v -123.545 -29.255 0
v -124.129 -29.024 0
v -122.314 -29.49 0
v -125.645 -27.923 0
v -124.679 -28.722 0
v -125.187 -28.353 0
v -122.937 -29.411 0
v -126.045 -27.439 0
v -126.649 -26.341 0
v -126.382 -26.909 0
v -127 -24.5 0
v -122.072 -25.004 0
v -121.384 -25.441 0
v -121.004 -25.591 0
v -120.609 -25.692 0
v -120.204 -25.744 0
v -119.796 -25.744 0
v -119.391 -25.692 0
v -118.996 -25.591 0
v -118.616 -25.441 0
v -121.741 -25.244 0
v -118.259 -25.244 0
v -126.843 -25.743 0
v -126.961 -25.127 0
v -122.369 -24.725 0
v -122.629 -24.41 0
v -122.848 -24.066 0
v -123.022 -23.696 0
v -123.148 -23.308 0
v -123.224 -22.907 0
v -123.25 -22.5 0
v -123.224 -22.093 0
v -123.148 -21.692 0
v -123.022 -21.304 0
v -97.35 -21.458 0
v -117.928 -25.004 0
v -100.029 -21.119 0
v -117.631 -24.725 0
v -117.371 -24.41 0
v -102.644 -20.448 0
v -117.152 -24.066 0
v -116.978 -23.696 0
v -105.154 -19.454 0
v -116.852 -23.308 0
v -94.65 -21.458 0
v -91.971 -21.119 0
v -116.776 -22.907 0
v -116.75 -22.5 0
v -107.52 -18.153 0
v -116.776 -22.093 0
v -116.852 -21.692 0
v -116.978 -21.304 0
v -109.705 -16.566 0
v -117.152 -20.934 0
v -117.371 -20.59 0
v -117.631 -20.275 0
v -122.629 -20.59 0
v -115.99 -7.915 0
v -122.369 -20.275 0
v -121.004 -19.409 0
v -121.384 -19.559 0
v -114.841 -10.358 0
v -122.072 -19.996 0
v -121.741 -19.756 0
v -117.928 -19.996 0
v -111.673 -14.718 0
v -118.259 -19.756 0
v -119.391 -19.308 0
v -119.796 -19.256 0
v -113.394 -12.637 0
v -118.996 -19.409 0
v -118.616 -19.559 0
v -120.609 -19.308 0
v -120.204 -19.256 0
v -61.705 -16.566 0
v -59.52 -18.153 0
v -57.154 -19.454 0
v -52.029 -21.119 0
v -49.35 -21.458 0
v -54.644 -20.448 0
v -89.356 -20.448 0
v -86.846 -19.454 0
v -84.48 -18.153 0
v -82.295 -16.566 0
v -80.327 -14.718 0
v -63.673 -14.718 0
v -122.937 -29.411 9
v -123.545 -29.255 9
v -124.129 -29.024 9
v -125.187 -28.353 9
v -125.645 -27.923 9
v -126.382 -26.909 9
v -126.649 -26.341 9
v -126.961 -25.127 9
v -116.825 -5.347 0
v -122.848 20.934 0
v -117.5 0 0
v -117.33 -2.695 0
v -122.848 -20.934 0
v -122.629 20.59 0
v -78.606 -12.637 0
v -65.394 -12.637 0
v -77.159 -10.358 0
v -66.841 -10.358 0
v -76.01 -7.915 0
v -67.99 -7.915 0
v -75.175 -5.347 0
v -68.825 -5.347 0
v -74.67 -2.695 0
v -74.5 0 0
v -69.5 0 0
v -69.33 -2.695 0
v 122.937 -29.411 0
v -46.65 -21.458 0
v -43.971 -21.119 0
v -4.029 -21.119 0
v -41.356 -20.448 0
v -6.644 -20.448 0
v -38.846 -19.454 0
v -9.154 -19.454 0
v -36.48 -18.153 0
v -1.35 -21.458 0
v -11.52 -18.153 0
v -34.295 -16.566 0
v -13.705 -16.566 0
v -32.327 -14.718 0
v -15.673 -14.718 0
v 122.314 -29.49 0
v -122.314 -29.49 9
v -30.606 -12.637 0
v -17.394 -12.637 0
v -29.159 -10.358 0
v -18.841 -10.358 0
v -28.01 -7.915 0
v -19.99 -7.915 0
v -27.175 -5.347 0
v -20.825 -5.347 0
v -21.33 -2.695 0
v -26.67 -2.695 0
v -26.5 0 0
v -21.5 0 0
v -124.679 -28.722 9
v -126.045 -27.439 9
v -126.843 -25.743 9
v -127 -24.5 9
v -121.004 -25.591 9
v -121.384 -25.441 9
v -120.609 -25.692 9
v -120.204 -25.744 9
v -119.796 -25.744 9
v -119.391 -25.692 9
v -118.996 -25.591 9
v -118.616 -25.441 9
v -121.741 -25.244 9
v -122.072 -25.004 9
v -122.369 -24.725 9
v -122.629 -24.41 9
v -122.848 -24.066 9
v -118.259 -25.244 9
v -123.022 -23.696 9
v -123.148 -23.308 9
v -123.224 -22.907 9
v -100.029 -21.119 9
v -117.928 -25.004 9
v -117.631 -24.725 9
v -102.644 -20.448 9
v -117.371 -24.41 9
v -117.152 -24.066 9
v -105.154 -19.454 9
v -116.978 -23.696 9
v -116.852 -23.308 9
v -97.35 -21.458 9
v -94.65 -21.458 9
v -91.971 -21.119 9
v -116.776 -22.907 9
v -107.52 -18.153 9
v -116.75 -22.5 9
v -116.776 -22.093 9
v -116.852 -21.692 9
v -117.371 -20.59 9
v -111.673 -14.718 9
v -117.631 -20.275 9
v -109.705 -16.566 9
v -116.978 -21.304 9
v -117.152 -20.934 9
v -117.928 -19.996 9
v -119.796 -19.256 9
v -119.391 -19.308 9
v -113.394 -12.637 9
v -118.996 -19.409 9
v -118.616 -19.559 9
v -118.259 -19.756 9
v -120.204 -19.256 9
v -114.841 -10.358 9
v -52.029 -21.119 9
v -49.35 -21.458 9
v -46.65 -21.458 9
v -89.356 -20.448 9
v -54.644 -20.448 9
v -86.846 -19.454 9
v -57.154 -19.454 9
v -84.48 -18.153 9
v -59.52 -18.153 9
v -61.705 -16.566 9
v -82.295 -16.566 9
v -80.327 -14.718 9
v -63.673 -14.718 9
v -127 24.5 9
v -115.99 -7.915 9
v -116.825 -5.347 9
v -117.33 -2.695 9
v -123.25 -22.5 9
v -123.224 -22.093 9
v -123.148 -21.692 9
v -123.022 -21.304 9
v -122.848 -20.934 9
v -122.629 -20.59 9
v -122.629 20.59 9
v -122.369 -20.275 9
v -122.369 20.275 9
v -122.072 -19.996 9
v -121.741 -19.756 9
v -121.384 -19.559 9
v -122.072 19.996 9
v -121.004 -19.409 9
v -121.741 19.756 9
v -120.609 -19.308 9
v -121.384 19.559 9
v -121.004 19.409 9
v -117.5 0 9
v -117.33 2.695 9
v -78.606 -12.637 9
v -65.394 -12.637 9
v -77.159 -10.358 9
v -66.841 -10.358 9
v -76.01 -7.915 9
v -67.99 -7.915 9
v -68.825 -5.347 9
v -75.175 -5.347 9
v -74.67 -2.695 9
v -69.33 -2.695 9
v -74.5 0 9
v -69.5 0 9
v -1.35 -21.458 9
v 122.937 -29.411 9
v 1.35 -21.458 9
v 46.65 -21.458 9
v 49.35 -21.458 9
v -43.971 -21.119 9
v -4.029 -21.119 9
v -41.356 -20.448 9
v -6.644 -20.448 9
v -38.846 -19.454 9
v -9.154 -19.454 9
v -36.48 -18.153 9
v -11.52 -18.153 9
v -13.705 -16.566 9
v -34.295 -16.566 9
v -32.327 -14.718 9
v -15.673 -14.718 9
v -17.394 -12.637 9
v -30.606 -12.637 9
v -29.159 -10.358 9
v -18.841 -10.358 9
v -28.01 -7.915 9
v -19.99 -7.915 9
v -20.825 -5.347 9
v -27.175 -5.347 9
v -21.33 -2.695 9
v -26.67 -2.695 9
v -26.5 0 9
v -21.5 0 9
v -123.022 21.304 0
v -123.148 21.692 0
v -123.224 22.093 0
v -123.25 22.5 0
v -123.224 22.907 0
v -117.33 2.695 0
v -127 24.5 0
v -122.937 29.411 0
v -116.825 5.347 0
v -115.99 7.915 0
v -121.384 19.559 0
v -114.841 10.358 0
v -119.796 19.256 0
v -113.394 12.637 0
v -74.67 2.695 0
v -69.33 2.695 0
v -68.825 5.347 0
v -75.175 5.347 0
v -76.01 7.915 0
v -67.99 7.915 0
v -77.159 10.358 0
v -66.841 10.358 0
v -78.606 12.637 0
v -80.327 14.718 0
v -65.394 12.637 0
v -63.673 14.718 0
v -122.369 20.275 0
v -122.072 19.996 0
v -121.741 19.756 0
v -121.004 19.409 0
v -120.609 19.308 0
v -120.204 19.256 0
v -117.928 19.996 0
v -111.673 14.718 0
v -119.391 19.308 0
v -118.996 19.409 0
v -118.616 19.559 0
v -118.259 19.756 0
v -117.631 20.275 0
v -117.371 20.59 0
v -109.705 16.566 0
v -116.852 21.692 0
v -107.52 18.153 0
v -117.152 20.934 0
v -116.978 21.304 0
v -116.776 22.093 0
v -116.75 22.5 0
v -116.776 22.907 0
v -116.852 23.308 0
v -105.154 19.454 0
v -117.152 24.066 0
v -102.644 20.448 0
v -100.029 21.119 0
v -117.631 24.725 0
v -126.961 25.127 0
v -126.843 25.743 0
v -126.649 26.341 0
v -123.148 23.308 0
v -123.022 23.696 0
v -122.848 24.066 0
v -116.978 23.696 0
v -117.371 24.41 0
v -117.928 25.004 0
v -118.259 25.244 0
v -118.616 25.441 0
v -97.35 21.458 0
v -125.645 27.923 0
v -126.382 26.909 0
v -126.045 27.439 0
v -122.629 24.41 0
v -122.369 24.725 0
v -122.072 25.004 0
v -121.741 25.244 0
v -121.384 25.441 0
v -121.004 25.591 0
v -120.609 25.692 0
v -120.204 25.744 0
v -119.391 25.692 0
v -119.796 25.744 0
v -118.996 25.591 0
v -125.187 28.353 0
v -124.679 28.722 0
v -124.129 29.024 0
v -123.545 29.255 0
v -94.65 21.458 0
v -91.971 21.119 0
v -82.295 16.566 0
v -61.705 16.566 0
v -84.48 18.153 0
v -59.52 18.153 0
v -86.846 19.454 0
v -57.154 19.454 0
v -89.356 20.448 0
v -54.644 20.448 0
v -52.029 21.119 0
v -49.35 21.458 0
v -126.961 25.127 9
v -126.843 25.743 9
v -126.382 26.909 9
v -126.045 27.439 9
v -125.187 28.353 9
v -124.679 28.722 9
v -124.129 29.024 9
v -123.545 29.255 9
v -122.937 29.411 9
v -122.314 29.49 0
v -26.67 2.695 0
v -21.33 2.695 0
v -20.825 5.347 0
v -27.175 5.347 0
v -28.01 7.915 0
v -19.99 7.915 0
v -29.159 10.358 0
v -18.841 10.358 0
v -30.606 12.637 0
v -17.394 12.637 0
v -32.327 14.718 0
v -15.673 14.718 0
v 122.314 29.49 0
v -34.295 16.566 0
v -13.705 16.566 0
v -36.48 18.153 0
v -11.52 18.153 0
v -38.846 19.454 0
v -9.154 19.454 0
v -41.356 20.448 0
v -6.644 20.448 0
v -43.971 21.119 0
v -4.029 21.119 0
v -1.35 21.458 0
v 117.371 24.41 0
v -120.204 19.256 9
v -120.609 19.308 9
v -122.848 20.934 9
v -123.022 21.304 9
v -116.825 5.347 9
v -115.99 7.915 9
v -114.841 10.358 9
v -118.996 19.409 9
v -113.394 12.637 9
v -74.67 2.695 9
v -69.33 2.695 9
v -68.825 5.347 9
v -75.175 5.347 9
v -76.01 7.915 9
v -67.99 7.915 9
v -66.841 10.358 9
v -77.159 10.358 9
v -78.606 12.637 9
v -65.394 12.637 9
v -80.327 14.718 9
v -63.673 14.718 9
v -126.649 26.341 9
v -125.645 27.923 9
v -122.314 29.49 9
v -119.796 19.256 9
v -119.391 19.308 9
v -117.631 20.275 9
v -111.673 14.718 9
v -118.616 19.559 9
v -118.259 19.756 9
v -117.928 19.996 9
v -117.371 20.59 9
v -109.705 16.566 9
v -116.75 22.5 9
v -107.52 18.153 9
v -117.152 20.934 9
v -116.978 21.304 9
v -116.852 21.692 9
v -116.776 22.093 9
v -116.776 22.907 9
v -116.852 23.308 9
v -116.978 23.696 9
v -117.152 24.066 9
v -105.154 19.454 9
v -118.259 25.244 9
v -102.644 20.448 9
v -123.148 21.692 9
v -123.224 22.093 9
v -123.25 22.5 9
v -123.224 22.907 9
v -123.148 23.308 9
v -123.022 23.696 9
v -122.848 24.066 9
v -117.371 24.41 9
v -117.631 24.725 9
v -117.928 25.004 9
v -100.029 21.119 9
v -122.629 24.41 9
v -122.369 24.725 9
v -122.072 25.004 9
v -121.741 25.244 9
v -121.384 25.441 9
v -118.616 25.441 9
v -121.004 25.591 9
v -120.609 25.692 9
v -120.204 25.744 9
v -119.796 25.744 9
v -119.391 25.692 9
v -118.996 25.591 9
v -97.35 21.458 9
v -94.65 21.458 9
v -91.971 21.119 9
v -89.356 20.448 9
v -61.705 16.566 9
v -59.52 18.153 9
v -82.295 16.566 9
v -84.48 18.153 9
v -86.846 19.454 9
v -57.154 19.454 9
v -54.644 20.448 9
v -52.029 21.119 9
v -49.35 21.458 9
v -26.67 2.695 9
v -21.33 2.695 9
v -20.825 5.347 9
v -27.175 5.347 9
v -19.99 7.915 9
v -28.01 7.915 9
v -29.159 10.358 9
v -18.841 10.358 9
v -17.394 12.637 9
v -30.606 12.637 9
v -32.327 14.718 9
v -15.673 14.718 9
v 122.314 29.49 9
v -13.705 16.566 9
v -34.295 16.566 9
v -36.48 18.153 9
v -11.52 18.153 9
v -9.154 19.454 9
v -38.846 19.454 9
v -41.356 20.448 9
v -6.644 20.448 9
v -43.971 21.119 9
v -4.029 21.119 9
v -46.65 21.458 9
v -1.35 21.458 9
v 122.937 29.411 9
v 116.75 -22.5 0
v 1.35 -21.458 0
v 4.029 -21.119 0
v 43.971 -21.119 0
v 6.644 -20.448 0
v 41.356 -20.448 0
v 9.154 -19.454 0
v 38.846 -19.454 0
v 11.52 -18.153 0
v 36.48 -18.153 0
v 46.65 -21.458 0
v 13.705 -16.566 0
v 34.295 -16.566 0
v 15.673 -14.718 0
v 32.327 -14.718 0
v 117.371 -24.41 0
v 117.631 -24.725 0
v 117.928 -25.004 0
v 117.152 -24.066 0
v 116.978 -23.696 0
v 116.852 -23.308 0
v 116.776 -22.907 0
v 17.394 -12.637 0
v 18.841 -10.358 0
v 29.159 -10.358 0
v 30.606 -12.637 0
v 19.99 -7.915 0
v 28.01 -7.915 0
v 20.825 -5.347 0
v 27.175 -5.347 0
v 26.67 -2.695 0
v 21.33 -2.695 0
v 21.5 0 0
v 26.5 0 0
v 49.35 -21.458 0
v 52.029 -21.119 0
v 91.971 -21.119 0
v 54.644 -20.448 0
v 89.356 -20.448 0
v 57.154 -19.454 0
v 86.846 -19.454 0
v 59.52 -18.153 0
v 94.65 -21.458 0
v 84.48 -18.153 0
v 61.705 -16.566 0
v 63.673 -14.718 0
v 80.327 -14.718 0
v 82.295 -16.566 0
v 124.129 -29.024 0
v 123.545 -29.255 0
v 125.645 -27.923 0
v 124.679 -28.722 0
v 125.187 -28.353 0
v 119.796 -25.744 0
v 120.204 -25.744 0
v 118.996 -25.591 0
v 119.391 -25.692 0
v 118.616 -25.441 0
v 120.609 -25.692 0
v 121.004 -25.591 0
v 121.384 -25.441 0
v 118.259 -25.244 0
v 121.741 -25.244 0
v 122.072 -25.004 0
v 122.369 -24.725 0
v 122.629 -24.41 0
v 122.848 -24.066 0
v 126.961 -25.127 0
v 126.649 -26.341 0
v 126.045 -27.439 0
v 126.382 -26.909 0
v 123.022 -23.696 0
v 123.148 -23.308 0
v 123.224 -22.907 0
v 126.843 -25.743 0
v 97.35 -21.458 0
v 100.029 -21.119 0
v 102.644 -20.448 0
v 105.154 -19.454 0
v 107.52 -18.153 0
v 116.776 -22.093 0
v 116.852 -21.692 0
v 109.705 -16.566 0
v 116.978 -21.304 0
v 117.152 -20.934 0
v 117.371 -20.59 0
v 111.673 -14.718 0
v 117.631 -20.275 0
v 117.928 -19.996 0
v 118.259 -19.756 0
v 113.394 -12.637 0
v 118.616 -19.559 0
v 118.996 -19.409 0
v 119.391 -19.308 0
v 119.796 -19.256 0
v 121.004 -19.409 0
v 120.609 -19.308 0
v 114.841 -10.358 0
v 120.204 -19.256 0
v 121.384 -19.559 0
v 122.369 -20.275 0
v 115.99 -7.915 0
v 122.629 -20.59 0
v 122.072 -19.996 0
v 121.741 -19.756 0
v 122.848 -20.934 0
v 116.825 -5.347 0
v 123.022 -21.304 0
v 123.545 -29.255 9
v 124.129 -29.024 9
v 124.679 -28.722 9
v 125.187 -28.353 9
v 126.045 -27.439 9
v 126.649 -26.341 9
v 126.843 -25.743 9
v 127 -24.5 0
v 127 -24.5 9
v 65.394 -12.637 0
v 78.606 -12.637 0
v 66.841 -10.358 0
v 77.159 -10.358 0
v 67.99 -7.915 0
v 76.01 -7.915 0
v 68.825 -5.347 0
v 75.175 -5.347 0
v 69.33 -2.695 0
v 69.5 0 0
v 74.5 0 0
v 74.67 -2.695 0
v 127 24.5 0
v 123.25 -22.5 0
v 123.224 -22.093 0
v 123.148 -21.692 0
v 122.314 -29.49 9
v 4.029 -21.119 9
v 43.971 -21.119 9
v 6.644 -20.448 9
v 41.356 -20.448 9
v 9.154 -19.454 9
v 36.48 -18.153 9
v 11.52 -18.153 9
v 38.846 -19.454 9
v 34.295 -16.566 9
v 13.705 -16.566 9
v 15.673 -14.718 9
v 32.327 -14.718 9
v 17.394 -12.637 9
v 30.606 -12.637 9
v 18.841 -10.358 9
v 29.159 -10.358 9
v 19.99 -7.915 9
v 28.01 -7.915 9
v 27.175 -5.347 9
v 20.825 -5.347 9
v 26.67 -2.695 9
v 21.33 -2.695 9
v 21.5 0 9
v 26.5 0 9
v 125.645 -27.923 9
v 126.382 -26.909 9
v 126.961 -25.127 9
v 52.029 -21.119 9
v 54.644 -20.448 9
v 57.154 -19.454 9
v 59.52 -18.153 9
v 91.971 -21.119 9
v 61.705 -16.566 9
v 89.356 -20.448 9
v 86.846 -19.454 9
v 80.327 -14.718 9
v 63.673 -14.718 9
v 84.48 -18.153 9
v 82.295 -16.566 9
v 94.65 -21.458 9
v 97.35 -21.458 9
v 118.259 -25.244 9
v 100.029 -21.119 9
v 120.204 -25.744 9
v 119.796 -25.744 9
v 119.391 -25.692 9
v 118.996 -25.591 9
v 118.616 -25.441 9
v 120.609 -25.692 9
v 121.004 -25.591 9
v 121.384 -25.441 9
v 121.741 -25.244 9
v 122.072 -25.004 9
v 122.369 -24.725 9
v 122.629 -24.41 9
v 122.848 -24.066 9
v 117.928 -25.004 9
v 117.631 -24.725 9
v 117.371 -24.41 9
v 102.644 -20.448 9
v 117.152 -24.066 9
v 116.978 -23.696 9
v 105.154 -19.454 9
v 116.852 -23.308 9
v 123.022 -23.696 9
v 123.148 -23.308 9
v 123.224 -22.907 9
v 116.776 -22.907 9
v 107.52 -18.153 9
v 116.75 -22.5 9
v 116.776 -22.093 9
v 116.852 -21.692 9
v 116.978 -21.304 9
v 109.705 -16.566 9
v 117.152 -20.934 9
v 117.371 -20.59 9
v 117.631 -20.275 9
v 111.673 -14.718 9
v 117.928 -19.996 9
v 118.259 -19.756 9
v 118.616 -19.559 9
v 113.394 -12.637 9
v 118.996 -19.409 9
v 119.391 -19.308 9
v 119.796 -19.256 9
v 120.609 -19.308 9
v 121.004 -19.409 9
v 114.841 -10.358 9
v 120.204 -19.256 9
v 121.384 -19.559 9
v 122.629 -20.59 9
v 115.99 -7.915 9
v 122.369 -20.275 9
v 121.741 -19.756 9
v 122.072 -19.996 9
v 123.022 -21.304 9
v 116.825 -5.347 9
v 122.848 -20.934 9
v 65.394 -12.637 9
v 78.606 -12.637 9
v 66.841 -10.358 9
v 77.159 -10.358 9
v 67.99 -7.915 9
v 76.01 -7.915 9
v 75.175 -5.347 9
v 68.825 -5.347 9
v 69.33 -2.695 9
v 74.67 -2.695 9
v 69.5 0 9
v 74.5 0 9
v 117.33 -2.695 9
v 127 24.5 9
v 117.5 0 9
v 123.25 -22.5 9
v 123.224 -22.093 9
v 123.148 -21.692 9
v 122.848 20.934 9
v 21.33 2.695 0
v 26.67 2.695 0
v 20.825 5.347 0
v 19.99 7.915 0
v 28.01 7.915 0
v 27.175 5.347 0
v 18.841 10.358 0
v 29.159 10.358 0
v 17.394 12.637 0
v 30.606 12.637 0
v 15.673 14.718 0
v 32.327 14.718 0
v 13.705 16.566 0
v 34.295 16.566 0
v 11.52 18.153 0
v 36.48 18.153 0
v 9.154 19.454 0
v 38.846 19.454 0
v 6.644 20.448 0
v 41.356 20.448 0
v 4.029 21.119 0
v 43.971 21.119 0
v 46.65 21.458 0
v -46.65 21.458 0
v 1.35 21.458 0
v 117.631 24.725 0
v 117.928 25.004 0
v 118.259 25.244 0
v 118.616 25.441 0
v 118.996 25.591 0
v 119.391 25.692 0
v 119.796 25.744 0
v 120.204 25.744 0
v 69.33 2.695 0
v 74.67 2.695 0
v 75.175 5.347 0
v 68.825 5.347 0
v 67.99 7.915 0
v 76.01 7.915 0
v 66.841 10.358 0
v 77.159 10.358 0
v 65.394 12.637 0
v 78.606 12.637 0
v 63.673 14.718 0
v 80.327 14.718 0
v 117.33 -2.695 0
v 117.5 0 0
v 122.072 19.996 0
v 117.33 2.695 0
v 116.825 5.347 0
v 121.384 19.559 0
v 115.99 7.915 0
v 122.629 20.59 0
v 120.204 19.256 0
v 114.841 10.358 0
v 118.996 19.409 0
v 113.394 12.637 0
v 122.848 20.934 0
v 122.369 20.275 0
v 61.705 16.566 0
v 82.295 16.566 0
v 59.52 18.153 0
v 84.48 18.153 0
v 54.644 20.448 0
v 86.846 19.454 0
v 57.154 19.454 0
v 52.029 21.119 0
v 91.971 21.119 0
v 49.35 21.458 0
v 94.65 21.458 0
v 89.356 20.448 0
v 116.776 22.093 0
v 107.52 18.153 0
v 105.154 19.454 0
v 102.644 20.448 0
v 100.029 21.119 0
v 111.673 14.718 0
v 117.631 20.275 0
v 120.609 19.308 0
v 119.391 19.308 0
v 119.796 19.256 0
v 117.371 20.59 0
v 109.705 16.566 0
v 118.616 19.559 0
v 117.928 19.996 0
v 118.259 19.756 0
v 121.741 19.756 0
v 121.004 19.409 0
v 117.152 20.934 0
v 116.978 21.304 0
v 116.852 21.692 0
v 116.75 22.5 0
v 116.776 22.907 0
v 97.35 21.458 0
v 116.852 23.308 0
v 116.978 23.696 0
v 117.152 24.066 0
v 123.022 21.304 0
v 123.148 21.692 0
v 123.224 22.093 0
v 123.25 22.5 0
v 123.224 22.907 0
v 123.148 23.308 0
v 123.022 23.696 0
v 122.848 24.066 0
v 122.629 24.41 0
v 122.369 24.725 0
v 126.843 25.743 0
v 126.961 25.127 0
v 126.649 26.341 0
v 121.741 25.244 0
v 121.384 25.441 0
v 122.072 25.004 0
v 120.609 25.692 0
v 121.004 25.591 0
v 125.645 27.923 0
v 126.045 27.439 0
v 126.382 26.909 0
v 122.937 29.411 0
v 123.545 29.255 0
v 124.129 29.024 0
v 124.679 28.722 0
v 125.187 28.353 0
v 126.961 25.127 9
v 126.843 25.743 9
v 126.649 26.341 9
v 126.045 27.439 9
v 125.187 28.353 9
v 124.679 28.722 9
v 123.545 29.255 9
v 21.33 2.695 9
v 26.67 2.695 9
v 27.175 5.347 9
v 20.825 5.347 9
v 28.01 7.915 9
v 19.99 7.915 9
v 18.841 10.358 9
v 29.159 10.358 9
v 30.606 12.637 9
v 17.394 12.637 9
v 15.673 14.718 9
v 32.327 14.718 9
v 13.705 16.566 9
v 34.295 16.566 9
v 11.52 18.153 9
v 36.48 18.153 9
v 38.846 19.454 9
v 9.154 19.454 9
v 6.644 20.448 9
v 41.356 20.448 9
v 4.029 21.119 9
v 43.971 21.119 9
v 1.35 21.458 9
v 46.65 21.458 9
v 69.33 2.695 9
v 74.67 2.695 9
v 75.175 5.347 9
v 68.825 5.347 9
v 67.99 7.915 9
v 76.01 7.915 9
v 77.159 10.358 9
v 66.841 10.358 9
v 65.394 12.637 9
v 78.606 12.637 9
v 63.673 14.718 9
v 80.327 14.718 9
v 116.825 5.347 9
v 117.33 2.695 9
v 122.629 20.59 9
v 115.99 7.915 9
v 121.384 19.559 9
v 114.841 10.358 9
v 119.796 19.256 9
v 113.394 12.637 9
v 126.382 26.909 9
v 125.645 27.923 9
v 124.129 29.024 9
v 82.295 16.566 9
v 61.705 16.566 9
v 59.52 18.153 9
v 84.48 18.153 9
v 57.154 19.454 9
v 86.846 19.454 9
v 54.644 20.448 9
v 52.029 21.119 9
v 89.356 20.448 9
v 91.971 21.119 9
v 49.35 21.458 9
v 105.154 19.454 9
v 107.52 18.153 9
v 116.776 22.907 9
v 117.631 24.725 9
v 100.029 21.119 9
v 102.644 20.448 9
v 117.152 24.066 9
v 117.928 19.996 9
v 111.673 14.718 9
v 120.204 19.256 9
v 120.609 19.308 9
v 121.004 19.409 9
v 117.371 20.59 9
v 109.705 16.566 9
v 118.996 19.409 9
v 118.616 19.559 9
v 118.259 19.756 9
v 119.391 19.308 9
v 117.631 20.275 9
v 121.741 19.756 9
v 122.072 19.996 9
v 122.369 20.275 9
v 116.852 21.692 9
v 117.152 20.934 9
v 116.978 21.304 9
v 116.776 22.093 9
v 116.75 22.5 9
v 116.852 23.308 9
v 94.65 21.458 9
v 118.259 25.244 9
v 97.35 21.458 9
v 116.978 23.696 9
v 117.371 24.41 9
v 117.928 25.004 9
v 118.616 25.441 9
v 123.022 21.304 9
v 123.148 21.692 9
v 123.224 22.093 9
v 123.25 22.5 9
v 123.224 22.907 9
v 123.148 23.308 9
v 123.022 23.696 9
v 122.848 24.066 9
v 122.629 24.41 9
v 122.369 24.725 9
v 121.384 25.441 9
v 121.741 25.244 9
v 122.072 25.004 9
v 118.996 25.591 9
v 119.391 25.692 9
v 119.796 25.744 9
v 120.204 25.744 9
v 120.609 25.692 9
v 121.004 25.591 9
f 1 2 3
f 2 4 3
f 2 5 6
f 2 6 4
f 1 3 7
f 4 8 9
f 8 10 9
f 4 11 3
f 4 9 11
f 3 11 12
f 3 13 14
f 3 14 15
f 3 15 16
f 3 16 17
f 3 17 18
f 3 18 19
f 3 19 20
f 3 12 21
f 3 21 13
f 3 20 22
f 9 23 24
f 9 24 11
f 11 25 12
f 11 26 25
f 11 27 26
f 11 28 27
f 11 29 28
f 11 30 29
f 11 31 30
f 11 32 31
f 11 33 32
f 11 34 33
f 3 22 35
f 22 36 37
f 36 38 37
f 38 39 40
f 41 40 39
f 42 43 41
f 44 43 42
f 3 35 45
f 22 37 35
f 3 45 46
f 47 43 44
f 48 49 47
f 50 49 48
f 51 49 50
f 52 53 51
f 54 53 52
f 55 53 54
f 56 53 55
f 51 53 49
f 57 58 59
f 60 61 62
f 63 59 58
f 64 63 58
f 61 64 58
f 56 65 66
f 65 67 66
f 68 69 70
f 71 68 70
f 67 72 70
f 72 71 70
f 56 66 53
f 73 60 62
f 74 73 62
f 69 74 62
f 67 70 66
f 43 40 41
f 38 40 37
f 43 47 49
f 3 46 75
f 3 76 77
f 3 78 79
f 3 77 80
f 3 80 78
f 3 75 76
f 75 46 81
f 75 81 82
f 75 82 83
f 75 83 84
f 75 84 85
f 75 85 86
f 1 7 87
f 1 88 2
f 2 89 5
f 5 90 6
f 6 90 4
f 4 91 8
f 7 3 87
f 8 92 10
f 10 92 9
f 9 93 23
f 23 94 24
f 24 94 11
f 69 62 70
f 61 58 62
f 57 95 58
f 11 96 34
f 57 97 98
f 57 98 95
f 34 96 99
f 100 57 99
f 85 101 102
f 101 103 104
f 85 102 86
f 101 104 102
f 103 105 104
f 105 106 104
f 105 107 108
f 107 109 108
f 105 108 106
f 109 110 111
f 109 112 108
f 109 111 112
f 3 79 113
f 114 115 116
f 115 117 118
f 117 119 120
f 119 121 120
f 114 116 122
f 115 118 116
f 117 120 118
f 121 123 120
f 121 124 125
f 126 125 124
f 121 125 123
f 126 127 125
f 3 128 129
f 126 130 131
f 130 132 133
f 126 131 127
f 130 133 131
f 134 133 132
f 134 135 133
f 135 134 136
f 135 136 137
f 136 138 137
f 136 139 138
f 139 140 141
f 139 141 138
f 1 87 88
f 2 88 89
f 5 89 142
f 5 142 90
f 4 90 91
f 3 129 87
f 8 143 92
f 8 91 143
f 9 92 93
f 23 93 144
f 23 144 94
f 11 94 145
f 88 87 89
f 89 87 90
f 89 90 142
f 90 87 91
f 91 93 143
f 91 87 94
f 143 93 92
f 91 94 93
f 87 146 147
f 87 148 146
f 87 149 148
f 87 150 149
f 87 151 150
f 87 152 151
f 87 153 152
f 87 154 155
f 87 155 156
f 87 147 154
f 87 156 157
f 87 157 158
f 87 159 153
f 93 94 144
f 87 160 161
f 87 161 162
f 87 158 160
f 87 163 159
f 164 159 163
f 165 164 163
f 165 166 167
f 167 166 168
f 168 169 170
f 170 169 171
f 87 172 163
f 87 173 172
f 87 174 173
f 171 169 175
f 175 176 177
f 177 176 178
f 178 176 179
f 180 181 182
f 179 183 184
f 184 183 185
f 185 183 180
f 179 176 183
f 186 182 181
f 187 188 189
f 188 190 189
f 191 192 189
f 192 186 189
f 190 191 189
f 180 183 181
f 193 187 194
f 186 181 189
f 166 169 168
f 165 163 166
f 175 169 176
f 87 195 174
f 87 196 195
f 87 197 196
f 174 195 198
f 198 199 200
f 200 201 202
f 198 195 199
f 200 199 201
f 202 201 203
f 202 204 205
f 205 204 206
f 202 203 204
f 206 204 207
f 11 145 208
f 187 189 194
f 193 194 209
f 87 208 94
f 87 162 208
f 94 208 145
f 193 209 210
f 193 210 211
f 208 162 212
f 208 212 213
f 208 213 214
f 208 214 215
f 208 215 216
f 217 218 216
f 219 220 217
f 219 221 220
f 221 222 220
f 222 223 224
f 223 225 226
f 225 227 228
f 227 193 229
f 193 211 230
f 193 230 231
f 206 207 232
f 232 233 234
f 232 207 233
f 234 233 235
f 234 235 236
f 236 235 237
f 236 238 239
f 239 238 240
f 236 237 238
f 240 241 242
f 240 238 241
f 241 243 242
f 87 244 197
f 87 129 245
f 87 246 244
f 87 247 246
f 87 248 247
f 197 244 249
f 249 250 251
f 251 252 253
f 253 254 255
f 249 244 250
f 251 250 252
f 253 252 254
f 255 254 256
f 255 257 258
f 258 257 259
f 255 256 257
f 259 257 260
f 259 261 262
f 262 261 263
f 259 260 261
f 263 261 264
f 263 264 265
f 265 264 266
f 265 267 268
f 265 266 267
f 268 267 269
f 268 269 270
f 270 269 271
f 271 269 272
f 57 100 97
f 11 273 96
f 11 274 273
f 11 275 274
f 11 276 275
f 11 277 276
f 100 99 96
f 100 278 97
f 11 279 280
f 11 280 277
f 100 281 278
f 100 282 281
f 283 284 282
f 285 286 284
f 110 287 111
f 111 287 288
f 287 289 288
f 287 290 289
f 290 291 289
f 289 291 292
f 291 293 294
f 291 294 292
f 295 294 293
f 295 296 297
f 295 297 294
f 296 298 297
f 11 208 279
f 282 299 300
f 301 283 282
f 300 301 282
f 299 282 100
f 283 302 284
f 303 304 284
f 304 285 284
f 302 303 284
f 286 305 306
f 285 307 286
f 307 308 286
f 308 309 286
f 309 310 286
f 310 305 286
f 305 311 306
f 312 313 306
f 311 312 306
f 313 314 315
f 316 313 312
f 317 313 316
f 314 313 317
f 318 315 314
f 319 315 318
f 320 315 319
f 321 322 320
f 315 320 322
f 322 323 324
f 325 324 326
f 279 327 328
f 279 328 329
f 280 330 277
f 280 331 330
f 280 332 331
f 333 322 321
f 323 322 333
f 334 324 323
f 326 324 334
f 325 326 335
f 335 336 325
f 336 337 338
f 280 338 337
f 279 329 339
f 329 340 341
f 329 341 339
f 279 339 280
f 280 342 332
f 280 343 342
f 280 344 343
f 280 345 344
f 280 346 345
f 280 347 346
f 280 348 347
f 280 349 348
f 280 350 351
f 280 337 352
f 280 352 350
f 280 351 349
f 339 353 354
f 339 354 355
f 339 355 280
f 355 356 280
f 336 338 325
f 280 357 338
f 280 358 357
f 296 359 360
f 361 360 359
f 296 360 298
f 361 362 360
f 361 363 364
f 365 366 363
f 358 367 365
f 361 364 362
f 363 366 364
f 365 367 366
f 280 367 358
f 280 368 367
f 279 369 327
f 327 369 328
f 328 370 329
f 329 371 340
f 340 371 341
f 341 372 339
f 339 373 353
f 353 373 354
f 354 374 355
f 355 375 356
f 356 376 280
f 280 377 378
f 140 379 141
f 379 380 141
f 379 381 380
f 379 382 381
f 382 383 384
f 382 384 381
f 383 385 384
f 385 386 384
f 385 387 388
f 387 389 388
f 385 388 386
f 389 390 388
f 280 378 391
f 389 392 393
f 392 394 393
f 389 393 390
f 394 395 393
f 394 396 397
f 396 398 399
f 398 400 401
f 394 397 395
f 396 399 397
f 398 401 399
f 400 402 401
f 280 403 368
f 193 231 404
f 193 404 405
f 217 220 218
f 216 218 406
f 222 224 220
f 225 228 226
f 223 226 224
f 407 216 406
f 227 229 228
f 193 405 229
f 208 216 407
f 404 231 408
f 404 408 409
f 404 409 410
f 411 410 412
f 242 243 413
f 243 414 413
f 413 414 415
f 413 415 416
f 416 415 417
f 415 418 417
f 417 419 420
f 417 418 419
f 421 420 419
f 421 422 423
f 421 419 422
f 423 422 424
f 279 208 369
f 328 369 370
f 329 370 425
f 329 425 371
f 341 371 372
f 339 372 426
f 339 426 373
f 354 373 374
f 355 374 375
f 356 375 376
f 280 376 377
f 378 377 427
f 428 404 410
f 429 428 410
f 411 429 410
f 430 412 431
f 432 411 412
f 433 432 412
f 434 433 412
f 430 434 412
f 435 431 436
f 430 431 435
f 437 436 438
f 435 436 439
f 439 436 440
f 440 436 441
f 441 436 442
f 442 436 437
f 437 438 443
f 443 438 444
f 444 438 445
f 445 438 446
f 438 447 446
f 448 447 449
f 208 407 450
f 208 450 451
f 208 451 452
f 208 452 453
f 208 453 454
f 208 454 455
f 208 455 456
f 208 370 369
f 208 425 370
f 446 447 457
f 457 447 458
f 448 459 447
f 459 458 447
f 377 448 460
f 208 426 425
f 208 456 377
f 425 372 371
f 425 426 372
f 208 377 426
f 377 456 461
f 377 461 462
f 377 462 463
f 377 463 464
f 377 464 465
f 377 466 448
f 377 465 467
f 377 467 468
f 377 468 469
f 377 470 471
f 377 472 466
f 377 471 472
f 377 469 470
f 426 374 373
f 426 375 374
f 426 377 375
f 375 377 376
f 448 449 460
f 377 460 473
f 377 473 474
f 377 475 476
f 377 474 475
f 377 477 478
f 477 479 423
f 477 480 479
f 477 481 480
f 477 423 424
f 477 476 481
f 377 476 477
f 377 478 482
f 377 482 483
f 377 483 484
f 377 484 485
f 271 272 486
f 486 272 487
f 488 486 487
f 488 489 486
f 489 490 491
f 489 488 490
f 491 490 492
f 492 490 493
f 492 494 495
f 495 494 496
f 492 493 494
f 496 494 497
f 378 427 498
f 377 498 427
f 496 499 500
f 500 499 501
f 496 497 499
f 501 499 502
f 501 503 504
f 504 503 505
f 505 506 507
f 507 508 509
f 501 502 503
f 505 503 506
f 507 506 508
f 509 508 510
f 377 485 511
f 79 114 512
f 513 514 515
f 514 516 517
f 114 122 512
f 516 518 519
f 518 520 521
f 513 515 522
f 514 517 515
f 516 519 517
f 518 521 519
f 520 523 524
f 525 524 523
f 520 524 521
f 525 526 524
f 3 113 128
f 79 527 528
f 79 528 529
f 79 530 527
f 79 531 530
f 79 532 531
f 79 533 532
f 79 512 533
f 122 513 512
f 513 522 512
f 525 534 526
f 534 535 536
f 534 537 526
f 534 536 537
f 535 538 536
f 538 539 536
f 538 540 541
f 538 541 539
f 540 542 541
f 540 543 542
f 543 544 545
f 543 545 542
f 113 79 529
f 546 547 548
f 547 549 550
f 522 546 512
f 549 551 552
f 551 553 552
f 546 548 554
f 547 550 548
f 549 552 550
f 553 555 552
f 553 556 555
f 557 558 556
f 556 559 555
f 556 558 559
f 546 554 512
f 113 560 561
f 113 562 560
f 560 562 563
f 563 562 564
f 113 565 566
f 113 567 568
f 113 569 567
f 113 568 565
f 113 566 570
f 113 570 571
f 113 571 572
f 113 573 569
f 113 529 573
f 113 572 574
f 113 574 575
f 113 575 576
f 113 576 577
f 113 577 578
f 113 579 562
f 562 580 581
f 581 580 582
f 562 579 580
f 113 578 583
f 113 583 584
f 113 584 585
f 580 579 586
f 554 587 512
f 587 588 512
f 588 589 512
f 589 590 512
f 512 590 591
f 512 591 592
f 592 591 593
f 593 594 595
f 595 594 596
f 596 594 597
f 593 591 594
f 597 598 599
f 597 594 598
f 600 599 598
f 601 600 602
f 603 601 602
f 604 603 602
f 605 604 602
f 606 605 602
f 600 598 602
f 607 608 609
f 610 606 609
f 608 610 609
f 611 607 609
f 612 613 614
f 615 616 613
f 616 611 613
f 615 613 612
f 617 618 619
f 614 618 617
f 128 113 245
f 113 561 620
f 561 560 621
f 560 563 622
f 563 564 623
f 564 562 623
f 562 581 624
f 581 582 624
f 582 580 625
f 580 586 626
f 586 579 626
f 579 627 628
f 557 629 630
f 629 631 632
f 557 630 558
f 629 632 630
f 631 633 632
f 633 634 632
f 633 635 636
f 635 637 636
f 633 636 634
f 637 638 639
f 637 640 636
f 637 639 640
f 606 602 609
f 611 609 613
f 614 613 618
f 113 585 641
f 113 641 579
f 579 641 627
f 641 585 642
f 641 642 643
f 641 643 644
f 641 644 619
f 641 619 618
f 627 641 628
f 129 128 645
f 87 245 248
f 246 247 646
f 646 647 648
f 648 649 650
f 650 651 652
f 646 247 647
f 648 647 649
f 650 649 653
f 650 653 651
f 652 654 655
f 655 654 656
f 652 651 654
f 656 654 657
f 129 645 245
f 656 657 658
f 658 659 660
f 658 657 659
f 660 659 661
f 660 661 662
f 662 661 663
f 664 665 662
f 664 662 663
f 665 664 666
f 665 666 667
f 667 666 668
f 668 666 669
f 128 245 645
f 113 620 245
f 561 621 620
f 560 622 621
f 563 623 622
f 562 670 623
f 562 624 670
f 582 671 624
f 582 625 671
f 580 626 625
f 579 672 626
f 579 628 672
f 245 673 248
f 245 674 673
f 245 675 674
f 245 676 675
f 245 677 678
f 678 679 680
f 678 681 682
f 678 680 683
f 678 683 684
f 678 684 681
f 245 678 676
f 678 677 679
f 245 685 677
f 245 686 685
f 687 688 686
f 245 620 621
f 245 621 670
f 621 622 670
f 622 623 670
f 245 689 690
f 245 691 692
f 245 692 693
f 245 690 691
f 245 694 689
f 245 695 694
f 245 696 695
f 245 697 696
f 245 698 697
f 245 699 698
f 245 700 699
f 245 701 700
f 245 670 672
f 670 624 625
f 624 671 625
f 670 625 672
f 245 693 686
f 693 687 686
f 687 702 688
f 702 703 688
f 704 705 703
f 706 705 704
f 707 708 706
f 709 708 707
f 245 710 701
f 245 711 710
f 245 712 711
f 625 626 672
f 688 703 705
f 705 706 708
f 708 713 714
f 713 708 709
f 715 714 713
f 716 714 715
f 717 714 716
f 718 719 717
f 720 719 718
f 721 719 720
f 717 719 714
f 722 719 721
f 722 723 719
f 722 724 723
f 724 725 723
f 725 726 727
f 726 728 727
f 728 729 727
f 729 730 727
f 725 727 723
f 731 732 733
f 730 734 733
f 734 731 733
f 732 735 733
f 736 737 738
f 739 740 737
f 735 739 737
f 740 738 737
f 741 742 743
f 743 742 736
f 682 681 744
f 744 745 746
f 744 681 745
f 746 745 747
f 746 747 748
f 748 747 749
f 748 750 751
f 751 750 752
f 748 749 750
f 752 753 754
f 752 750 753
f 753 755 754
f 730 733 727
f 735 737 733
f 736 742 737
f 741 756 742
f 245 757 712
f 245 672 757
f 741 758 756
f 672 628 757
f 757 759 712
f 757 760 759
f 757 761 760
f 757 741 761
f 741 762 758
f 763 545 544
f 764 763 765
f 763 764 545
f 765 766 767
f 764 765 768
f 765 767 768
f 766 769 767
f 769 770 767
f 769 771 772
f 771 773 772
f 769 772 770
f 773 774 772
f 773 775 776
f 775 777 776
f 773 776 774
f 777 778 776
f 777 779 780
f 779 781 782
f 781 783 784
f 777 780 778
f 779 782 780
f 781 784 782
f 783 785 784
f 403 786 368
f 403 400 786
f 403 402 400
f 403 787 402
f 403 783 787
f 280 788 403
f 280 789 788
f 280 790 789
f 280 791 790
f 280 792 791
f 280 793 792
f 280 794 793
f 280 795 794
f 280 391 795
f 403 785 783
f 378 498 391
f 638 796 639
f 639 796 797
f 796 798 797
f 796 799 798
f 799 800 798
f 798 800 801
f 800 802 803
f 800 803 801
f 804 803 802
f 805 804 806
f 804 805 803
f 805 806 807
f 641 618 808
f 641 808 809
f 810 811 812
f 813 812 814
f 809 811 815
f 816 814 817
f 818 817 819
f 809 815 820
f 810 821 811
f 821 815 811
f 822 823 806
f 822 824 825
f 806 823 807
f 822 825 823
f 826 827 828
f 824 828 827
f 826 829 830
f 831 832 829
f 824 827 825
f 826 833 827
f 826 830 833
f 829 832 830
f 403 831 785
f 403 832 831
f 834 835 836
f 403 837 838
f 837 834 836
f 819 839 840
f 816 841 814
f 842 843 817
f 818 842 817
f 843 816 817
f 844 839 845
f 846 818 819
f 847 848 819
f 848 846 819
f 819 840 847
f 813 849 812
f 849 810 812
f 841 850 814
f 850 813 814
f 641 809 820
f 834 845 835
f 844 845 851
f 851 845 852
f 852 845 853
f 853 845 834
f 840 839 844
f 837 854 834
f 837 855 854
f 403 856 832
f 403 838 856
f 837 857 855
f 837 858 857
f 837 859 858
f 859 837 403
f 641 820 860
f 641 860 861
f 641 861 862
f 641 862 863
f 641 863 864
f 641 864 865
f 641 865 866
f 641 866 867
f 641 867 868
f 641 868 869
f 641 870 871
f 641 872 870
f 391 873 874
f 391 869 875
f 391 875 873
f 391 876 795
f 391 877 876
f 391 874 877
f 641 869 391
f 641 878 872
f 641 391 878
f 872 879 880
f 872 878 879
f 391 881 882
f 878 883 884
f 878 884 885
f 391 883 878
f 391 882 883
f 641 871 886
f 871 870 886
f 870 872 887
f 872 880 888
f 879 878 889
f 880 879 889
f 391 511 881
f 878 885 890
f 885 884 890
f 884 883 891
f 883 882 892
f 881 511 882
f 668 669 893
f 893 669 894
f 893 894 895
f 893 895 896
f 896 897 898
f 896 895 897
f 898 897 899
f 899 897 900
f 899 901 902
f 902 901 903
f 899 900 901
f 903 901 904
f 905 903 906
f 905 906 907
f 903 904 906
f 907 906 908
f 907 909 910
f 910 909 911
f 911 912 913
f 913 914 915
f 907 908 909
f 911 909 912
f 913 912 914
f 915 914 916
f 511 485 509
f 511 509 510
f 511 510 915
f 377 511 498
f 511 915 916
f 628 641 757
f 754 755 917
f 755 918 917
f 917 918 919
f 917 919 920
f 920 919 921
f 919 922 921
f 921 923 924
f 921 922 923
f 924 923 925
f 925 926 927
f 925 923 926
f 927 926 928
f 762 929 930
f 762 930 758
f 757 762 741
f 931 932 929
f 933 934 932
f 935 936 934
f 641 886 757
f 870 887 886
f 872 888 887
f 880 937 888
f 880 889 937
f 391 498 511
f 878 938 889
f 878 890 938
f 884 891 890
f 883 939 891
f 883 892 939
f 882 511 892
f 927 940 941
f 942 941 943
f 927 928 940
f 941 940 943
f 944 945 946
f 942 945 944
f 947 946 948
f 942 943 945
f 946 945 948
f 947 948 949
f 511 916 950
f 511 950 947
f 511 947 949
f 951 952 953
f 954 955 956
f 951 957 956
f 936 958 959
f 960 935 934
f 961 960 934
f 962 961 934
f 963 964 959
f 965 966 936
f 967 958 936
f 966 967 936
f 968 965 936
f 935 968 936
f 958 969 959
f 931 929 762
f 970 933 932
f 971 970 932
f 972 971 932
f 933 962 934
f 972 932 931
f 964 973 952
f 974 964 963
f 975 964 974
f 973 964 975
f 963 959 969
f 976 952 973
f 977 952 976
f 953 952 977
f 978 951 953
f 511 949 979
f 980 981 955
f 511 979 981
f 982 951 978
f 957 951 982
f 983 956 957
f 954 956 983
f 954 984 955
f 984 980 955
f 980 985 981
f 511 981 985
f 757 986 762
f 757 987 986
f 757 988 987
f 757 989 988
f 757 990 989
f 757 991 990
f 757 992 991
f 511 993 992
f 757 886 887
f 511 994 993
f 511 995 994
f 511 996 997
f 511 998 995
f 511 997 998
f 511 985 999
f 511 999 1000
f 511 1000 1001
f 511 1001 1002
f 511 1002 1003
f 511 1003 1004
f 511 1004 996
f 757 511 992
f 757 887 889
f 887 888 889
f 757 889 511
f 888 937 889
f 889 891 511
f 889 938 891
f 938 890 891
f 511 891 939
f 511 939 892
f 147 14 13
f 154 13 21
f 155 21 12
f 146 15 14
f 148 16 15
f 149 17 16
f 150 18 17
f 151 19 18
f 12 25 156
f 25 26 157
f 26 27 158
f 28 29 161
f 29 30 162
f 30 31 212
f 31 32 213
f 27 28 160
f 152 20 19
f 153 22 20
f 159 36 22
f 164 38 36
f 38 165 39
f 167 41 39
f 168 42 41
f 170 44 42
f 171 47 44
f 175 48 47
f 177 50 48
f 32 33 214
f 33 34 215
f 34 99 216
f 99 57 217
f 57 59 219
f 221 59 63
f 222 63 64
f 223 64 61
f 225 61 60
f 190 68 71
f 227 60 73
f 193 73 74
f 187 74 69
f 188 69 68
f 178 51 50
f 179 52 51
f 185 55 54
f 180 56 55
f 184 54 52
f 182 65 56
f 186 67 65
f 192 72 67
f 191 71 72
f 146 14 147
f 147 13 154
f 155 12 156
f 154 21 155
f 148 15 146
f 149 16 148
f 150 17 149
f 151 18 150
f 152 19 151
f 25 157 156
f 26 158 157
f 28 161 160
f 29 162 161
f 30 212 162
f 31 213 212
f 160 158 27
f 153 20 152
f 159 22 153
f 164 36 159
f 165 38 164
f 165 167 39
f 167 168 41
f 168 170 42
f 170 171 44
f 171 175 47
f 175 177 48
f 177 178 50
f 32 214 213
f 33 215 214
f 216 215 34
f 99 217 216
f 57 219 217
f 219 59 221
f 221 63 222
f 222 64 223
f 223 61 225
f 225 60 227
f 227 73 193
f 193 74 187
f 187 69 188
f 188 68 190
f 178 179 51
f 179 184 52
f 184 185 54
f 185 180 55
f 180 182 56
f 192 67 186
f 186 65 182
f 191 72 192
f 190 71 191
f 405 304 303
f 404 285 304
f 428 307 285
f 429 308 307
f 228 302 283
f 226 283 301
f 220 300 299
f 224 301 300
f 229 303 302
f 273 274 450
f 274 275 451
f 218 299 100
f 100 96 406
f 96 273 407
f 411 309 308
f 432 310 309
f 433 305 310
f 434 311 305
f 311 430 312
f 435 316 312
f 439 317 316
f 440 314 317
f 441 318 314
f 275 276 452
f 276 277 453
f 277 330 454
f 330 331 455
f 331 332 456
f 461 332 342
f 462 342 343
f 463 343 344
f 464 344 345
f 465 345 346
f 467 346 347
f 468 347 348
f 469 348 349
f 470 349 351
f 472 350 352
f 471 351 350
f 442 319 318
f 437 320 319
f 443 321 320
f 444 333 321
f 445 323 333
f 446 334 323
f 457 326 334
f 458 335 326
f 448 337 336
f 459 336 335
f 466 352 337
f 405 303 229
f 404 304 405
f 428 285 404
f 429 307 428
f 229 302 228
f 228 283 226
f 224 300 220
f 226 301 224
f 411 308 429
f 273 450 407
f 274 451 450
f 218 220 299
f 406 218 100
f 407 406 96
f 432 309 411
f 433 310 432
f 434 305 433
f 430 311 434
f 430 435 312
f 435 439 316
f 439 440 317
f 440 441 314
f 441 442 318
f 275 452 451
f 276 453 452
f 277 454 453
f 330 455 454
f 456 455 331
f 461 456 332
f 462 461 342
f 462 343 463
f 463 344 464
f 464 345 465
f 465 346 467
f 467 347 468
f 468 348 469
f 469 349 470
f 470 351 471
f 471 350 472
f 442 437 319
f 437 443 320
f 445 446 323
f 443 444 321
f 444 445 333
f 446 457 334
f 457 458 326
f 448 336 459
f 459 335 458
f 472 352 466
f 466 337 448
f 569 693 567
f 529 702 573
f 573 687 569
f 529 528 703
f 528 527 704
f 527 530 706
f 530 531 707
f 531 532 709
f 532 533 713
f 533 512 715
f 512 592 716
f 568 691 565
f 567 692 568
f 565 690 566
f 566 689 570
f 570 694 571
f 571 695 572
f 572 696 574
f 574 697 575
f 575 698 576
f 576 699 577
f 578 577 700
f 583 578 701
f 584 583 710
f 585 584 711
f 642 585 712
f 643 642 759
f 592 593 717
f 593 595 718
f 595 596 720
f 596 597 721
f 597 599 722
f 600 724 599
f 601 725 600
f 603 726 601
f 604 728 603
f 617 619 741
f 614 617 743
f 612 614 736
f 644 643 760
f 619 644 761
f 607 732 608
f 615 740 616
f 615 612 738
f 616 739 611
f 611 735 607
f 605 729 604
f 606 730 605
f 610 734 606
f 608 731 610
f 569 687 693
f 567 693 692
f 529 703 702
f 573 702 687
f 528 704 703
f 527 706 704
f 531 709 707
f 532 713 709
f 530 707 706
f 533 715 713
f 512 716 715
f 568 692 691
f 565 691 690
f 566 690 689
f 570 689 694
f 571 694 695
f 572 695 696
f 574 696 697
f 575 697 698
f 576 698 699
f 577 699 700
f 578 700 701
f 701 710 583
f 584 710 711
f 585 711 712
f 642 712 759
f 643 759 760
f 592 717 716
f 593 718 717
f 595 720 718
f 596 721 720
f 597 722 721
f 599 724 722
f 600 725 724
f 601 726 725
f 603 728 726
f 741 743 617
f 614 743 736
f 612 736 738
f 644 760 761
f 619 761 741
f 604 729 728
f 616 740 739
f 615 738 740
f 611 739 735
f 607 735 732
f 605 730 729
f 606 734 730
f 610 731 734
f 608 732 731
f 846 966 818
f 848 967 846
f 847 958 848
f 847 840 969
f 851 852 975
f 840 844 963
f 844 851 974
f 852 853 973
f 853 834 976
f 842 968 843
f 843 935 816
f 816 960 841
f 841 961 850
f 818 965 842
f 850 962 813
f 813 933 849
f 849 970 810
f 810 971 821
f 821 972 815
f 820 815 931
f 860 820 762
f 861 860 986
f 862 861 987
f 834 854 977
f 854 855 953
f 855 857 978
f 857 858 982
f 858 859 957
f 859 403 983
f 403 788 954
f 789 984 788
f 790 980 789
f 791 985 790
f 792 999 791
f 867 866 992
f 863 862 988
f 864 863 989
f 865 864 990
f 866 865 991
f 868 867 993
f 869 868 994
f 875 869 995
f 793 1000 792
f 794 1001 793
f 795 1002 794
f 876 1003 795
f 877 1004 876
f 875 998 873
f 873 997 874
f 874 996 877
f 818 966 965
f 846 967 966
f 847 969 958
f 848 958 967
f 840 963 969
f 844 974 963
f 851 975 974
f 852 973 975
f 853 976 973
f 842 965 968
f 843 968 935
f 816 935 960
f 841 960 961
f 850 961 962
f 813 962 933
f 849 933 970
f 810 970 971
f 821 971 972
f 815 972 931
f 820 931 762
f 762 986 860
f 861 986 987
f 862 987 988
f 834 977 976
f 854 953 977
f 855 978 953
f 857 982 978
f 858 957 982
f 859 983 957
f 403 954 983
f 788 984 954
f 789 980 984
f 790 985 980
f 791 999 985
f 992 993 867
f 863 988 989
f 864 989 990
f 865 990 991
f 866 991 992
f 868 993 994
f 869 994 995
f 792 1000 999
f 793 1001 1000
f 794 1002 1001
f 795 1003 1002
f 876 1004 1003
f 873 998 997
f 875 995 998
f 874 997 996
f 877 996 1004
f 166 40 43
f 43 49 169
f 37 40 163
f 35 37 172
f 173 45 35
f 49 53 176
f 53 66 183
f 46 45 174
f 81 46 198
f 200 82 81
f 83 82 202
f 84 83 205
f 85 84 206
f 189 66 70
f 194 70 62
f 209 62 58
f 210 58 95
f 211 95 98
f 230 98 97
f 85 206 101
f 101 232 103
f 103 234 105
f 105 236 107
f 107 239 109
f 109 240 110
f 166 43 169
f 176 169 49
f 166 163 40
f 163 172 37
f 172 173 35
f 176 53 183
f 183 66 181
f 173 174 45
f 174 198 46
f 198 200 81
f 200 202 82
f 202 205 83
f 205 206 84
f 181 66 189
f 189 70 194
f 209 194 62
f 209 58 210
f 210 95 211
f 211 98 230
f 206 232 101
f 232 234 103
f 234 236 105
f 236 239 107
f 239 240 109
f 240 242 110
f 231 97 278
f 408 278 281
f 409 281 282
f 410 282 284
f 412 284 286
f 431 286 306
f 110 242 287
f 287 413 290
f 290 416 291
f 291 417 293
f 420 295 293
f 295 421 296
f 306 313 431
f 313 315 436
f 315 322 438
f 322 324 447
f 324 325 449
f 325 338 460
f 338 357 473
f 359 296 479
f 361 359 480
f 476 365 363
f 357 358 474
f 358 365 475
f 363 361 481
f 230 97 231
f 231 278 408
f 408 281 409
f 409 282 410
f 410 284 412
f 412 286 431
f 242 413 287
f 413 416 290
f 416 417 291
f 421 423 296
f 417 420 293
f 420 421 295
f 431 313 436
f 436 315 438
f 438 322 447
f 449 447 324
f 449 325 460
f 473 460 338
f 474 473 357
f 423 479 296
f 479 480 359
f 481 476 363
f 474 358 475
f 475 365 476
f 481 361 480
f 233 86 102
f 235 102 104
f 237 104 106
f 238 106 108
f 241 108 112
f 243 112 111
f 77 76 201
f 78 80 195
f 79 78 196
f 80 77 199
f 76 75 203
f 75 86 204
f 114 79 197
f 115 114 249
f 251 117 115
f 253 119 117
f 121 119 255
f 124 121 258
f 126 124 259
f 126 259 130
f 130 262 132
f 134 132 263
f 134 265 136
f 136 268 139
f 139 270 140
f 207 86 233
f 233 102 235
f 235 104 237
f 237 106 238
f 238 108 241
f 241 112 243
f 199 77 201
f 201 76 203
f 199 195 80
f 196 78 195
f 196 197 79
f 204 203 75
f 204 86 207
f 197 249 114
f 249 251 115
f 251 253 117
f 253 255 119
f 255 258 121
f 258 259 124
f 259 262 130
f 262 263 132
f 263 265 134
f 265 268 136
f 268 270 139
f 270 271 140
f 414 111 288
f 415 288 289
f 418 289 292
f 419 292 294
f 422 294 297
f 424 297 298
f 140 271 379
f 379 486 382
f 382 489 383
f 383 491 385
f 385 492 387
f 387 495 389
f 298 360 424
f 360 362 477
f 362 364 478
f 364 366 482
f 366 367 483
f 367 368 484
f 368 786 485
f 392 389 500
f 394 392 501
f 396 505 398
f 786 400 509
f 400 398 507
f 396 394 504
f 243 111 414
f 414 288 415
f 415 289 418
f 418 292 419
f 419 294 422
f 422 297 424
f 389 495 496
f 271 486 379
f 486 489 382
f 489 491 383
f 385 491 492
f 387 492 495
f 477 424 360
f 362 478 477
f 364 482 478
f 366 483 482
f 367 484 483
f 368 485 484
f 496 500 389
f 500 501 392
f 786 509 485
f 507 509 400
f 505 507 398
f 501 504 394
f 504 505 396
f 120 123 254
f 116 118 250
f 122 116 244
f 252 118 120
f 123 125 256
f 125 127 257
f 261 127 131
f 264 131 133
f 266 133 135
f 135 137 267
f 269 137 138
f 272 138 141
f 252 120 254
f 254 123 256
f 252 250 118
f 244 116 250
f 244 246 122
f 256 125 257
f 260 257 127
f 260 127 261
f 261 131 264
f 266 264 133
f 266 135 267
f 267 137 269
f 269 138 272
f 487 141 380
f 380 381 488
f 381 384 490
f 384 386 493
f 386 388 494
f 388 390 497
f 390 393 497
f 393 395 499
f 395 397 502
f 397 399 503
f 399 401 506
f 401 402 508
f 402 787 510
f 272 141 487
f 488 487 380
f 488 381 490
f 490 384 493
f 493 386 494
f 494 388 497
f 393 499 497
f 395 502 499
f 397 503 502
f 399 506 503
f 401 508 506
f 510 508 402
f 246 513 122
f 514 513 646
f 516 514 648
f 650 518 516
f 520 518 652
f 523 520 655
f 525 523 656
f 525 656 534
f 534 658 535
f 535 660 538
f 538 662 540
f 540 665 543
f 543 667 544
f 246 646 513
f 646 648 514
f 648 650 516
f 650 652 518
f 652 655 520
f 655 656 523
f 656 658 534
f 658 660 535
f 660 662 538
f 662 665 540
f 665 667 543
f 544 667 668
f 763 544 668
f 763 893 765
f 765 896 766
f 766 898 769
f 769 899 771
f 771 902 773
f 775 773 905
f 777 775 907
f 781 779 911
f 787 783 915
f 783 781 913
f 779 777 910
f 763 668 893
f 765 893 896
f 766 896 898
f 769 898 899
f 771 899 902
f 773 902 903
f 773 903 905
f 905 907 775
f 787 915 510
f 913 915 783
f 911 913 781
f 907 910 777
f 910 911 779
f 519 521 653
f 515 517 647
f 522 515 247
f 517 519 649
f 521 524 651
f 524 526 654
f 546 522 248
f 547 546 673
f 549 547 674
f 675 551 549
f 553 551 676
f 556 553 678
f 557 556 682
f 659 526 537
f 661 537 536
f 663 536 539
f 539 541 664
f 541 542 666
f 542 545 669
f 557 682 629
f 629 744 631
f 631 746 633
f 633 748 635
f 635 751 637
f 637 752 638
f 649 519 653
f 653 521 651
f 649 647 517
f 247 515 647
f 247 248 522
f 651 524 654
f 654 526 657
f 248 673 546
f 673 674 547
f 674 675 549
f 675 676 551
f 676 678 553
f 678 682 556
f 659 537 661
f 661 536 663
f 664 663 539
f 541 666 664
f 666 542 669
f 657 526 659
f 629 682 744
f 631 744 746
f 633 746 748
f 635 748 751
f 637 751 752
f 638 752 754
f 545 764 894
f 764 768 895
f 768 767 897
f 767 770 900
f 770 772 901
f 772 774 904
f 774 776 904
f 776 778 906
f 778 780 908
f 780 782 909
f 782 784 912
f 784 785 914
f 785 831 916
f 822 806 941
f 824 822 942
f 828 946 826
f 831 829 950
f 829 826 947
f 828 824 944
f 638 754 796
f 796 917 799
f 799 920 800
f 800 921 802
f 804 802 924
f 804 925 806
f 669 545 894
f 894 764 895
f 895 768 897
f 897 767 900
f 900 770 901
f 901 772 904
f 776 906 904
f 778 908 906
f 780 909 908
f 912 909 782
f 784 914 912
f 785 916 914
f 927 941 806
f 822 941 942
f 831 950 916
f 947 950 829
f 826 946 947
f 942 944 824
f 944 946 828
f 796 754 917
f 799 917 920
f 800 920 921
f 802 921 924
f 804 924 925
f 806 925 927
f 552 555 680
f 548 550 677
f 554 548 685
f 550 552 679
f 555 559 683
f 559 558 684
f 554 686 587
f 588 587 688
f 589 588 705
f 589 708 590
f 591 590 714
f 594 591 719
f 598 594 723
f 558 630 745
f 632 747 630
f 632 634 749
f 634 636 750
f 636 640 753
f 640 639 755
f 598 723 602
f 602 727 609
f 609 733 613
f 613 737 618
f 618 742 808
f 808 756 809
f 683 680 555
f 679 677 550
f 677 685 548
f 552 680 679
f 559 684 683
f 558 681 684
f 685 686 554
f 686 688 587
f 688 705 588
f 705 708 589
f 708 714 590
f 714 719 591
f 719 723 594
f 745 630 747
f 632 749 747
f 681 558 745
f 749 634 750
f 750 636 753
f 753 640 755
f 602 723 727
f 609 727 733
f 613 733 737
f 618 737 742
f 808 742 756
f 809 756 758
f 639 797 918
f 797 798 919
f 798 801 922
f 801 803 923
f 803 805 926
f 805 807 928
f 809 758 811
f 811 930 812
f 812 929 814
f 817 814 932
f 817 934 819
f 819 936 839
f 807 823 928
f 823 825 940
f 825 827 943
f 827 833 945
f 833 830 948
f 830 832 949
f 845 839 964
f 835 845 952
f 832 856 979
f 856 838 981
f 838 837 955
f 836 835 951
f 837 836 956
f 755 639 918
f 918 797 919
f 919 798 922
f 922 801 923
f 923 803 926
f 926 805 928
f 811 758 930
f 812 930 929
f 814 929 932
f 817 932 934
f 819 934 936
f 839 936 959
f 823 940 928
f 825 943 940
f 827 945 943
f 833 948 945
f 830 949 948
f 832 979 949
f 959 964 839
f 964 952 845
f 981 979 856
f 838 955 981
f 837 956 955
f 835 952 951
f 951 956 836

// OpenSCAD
$fn = 50;

difference() {
	union() {
		hull() {
			translate(v = [-122.0, 24.5, 0]) {
				cylinder(h = 9, r = 5);
			}
			translate(v = [122.0, 24.5, 0]) {
				cylinder(h = 9, r = 5);
			}
			translate(v = [-122.0, -24.5, 0]) {
				cylinder(h = 9, r = 5);
			}
			translate(v = [122.0, -24.5, 0]) {
				cylinder(h = 9, r = 5);
			}
		}
	}
	union() {
		translate(v = [-120.0, -22.5, -100.0]) {
			cylinder(h = 200, r = 3.25);
		}
		translate(v = [-120.0, 22.5, -100.0]) {
			cylinder(h = 200, r = 3.25);
		}
		translate(v = [120.0, -22.5, -100.0]) {
			cylinder(h = 200, r = 3.25);
		}
		translate(v = [120.0, 22.5, -100.0]) {
			cylinder(h = 200, r = 3.25);
		}
		translate(v = [-120.0, -22.5, -100.0]) {
			cylinder(h = 200, r = 1.8);
		}
		translate(v = [-120.0, 22.5, -100.0]) {
			cylinder(h = 200, r = 1.8);
		}
		translate(v = [120.0, -22.5, -100.0]) {
			cylinder(h = 200, r = 1.8);
		}
		translate(v = [120.0, 22.5, -100.0]) {
			cylinder(h = 200, r = 1.8);
		}
		translate(v = [-96.0, 0, 0.0]) {
			cylinder(h = 9, r = 21.5);
		}
		translate(v = [-48.0, 0, 0.0]) {
			cylinder(h = 9, r = 21.5);
		}
		cylinder(h = 9, r = 21.5);
		translate(v = [48.0, 0, 0.0]) {
			cylinder(h = 9, r = 21.5);
		}
		translate(v = [96.0, 0, 0.0]) {
			cylinder(h = 9, r = 21.5);
		}
	}
}
